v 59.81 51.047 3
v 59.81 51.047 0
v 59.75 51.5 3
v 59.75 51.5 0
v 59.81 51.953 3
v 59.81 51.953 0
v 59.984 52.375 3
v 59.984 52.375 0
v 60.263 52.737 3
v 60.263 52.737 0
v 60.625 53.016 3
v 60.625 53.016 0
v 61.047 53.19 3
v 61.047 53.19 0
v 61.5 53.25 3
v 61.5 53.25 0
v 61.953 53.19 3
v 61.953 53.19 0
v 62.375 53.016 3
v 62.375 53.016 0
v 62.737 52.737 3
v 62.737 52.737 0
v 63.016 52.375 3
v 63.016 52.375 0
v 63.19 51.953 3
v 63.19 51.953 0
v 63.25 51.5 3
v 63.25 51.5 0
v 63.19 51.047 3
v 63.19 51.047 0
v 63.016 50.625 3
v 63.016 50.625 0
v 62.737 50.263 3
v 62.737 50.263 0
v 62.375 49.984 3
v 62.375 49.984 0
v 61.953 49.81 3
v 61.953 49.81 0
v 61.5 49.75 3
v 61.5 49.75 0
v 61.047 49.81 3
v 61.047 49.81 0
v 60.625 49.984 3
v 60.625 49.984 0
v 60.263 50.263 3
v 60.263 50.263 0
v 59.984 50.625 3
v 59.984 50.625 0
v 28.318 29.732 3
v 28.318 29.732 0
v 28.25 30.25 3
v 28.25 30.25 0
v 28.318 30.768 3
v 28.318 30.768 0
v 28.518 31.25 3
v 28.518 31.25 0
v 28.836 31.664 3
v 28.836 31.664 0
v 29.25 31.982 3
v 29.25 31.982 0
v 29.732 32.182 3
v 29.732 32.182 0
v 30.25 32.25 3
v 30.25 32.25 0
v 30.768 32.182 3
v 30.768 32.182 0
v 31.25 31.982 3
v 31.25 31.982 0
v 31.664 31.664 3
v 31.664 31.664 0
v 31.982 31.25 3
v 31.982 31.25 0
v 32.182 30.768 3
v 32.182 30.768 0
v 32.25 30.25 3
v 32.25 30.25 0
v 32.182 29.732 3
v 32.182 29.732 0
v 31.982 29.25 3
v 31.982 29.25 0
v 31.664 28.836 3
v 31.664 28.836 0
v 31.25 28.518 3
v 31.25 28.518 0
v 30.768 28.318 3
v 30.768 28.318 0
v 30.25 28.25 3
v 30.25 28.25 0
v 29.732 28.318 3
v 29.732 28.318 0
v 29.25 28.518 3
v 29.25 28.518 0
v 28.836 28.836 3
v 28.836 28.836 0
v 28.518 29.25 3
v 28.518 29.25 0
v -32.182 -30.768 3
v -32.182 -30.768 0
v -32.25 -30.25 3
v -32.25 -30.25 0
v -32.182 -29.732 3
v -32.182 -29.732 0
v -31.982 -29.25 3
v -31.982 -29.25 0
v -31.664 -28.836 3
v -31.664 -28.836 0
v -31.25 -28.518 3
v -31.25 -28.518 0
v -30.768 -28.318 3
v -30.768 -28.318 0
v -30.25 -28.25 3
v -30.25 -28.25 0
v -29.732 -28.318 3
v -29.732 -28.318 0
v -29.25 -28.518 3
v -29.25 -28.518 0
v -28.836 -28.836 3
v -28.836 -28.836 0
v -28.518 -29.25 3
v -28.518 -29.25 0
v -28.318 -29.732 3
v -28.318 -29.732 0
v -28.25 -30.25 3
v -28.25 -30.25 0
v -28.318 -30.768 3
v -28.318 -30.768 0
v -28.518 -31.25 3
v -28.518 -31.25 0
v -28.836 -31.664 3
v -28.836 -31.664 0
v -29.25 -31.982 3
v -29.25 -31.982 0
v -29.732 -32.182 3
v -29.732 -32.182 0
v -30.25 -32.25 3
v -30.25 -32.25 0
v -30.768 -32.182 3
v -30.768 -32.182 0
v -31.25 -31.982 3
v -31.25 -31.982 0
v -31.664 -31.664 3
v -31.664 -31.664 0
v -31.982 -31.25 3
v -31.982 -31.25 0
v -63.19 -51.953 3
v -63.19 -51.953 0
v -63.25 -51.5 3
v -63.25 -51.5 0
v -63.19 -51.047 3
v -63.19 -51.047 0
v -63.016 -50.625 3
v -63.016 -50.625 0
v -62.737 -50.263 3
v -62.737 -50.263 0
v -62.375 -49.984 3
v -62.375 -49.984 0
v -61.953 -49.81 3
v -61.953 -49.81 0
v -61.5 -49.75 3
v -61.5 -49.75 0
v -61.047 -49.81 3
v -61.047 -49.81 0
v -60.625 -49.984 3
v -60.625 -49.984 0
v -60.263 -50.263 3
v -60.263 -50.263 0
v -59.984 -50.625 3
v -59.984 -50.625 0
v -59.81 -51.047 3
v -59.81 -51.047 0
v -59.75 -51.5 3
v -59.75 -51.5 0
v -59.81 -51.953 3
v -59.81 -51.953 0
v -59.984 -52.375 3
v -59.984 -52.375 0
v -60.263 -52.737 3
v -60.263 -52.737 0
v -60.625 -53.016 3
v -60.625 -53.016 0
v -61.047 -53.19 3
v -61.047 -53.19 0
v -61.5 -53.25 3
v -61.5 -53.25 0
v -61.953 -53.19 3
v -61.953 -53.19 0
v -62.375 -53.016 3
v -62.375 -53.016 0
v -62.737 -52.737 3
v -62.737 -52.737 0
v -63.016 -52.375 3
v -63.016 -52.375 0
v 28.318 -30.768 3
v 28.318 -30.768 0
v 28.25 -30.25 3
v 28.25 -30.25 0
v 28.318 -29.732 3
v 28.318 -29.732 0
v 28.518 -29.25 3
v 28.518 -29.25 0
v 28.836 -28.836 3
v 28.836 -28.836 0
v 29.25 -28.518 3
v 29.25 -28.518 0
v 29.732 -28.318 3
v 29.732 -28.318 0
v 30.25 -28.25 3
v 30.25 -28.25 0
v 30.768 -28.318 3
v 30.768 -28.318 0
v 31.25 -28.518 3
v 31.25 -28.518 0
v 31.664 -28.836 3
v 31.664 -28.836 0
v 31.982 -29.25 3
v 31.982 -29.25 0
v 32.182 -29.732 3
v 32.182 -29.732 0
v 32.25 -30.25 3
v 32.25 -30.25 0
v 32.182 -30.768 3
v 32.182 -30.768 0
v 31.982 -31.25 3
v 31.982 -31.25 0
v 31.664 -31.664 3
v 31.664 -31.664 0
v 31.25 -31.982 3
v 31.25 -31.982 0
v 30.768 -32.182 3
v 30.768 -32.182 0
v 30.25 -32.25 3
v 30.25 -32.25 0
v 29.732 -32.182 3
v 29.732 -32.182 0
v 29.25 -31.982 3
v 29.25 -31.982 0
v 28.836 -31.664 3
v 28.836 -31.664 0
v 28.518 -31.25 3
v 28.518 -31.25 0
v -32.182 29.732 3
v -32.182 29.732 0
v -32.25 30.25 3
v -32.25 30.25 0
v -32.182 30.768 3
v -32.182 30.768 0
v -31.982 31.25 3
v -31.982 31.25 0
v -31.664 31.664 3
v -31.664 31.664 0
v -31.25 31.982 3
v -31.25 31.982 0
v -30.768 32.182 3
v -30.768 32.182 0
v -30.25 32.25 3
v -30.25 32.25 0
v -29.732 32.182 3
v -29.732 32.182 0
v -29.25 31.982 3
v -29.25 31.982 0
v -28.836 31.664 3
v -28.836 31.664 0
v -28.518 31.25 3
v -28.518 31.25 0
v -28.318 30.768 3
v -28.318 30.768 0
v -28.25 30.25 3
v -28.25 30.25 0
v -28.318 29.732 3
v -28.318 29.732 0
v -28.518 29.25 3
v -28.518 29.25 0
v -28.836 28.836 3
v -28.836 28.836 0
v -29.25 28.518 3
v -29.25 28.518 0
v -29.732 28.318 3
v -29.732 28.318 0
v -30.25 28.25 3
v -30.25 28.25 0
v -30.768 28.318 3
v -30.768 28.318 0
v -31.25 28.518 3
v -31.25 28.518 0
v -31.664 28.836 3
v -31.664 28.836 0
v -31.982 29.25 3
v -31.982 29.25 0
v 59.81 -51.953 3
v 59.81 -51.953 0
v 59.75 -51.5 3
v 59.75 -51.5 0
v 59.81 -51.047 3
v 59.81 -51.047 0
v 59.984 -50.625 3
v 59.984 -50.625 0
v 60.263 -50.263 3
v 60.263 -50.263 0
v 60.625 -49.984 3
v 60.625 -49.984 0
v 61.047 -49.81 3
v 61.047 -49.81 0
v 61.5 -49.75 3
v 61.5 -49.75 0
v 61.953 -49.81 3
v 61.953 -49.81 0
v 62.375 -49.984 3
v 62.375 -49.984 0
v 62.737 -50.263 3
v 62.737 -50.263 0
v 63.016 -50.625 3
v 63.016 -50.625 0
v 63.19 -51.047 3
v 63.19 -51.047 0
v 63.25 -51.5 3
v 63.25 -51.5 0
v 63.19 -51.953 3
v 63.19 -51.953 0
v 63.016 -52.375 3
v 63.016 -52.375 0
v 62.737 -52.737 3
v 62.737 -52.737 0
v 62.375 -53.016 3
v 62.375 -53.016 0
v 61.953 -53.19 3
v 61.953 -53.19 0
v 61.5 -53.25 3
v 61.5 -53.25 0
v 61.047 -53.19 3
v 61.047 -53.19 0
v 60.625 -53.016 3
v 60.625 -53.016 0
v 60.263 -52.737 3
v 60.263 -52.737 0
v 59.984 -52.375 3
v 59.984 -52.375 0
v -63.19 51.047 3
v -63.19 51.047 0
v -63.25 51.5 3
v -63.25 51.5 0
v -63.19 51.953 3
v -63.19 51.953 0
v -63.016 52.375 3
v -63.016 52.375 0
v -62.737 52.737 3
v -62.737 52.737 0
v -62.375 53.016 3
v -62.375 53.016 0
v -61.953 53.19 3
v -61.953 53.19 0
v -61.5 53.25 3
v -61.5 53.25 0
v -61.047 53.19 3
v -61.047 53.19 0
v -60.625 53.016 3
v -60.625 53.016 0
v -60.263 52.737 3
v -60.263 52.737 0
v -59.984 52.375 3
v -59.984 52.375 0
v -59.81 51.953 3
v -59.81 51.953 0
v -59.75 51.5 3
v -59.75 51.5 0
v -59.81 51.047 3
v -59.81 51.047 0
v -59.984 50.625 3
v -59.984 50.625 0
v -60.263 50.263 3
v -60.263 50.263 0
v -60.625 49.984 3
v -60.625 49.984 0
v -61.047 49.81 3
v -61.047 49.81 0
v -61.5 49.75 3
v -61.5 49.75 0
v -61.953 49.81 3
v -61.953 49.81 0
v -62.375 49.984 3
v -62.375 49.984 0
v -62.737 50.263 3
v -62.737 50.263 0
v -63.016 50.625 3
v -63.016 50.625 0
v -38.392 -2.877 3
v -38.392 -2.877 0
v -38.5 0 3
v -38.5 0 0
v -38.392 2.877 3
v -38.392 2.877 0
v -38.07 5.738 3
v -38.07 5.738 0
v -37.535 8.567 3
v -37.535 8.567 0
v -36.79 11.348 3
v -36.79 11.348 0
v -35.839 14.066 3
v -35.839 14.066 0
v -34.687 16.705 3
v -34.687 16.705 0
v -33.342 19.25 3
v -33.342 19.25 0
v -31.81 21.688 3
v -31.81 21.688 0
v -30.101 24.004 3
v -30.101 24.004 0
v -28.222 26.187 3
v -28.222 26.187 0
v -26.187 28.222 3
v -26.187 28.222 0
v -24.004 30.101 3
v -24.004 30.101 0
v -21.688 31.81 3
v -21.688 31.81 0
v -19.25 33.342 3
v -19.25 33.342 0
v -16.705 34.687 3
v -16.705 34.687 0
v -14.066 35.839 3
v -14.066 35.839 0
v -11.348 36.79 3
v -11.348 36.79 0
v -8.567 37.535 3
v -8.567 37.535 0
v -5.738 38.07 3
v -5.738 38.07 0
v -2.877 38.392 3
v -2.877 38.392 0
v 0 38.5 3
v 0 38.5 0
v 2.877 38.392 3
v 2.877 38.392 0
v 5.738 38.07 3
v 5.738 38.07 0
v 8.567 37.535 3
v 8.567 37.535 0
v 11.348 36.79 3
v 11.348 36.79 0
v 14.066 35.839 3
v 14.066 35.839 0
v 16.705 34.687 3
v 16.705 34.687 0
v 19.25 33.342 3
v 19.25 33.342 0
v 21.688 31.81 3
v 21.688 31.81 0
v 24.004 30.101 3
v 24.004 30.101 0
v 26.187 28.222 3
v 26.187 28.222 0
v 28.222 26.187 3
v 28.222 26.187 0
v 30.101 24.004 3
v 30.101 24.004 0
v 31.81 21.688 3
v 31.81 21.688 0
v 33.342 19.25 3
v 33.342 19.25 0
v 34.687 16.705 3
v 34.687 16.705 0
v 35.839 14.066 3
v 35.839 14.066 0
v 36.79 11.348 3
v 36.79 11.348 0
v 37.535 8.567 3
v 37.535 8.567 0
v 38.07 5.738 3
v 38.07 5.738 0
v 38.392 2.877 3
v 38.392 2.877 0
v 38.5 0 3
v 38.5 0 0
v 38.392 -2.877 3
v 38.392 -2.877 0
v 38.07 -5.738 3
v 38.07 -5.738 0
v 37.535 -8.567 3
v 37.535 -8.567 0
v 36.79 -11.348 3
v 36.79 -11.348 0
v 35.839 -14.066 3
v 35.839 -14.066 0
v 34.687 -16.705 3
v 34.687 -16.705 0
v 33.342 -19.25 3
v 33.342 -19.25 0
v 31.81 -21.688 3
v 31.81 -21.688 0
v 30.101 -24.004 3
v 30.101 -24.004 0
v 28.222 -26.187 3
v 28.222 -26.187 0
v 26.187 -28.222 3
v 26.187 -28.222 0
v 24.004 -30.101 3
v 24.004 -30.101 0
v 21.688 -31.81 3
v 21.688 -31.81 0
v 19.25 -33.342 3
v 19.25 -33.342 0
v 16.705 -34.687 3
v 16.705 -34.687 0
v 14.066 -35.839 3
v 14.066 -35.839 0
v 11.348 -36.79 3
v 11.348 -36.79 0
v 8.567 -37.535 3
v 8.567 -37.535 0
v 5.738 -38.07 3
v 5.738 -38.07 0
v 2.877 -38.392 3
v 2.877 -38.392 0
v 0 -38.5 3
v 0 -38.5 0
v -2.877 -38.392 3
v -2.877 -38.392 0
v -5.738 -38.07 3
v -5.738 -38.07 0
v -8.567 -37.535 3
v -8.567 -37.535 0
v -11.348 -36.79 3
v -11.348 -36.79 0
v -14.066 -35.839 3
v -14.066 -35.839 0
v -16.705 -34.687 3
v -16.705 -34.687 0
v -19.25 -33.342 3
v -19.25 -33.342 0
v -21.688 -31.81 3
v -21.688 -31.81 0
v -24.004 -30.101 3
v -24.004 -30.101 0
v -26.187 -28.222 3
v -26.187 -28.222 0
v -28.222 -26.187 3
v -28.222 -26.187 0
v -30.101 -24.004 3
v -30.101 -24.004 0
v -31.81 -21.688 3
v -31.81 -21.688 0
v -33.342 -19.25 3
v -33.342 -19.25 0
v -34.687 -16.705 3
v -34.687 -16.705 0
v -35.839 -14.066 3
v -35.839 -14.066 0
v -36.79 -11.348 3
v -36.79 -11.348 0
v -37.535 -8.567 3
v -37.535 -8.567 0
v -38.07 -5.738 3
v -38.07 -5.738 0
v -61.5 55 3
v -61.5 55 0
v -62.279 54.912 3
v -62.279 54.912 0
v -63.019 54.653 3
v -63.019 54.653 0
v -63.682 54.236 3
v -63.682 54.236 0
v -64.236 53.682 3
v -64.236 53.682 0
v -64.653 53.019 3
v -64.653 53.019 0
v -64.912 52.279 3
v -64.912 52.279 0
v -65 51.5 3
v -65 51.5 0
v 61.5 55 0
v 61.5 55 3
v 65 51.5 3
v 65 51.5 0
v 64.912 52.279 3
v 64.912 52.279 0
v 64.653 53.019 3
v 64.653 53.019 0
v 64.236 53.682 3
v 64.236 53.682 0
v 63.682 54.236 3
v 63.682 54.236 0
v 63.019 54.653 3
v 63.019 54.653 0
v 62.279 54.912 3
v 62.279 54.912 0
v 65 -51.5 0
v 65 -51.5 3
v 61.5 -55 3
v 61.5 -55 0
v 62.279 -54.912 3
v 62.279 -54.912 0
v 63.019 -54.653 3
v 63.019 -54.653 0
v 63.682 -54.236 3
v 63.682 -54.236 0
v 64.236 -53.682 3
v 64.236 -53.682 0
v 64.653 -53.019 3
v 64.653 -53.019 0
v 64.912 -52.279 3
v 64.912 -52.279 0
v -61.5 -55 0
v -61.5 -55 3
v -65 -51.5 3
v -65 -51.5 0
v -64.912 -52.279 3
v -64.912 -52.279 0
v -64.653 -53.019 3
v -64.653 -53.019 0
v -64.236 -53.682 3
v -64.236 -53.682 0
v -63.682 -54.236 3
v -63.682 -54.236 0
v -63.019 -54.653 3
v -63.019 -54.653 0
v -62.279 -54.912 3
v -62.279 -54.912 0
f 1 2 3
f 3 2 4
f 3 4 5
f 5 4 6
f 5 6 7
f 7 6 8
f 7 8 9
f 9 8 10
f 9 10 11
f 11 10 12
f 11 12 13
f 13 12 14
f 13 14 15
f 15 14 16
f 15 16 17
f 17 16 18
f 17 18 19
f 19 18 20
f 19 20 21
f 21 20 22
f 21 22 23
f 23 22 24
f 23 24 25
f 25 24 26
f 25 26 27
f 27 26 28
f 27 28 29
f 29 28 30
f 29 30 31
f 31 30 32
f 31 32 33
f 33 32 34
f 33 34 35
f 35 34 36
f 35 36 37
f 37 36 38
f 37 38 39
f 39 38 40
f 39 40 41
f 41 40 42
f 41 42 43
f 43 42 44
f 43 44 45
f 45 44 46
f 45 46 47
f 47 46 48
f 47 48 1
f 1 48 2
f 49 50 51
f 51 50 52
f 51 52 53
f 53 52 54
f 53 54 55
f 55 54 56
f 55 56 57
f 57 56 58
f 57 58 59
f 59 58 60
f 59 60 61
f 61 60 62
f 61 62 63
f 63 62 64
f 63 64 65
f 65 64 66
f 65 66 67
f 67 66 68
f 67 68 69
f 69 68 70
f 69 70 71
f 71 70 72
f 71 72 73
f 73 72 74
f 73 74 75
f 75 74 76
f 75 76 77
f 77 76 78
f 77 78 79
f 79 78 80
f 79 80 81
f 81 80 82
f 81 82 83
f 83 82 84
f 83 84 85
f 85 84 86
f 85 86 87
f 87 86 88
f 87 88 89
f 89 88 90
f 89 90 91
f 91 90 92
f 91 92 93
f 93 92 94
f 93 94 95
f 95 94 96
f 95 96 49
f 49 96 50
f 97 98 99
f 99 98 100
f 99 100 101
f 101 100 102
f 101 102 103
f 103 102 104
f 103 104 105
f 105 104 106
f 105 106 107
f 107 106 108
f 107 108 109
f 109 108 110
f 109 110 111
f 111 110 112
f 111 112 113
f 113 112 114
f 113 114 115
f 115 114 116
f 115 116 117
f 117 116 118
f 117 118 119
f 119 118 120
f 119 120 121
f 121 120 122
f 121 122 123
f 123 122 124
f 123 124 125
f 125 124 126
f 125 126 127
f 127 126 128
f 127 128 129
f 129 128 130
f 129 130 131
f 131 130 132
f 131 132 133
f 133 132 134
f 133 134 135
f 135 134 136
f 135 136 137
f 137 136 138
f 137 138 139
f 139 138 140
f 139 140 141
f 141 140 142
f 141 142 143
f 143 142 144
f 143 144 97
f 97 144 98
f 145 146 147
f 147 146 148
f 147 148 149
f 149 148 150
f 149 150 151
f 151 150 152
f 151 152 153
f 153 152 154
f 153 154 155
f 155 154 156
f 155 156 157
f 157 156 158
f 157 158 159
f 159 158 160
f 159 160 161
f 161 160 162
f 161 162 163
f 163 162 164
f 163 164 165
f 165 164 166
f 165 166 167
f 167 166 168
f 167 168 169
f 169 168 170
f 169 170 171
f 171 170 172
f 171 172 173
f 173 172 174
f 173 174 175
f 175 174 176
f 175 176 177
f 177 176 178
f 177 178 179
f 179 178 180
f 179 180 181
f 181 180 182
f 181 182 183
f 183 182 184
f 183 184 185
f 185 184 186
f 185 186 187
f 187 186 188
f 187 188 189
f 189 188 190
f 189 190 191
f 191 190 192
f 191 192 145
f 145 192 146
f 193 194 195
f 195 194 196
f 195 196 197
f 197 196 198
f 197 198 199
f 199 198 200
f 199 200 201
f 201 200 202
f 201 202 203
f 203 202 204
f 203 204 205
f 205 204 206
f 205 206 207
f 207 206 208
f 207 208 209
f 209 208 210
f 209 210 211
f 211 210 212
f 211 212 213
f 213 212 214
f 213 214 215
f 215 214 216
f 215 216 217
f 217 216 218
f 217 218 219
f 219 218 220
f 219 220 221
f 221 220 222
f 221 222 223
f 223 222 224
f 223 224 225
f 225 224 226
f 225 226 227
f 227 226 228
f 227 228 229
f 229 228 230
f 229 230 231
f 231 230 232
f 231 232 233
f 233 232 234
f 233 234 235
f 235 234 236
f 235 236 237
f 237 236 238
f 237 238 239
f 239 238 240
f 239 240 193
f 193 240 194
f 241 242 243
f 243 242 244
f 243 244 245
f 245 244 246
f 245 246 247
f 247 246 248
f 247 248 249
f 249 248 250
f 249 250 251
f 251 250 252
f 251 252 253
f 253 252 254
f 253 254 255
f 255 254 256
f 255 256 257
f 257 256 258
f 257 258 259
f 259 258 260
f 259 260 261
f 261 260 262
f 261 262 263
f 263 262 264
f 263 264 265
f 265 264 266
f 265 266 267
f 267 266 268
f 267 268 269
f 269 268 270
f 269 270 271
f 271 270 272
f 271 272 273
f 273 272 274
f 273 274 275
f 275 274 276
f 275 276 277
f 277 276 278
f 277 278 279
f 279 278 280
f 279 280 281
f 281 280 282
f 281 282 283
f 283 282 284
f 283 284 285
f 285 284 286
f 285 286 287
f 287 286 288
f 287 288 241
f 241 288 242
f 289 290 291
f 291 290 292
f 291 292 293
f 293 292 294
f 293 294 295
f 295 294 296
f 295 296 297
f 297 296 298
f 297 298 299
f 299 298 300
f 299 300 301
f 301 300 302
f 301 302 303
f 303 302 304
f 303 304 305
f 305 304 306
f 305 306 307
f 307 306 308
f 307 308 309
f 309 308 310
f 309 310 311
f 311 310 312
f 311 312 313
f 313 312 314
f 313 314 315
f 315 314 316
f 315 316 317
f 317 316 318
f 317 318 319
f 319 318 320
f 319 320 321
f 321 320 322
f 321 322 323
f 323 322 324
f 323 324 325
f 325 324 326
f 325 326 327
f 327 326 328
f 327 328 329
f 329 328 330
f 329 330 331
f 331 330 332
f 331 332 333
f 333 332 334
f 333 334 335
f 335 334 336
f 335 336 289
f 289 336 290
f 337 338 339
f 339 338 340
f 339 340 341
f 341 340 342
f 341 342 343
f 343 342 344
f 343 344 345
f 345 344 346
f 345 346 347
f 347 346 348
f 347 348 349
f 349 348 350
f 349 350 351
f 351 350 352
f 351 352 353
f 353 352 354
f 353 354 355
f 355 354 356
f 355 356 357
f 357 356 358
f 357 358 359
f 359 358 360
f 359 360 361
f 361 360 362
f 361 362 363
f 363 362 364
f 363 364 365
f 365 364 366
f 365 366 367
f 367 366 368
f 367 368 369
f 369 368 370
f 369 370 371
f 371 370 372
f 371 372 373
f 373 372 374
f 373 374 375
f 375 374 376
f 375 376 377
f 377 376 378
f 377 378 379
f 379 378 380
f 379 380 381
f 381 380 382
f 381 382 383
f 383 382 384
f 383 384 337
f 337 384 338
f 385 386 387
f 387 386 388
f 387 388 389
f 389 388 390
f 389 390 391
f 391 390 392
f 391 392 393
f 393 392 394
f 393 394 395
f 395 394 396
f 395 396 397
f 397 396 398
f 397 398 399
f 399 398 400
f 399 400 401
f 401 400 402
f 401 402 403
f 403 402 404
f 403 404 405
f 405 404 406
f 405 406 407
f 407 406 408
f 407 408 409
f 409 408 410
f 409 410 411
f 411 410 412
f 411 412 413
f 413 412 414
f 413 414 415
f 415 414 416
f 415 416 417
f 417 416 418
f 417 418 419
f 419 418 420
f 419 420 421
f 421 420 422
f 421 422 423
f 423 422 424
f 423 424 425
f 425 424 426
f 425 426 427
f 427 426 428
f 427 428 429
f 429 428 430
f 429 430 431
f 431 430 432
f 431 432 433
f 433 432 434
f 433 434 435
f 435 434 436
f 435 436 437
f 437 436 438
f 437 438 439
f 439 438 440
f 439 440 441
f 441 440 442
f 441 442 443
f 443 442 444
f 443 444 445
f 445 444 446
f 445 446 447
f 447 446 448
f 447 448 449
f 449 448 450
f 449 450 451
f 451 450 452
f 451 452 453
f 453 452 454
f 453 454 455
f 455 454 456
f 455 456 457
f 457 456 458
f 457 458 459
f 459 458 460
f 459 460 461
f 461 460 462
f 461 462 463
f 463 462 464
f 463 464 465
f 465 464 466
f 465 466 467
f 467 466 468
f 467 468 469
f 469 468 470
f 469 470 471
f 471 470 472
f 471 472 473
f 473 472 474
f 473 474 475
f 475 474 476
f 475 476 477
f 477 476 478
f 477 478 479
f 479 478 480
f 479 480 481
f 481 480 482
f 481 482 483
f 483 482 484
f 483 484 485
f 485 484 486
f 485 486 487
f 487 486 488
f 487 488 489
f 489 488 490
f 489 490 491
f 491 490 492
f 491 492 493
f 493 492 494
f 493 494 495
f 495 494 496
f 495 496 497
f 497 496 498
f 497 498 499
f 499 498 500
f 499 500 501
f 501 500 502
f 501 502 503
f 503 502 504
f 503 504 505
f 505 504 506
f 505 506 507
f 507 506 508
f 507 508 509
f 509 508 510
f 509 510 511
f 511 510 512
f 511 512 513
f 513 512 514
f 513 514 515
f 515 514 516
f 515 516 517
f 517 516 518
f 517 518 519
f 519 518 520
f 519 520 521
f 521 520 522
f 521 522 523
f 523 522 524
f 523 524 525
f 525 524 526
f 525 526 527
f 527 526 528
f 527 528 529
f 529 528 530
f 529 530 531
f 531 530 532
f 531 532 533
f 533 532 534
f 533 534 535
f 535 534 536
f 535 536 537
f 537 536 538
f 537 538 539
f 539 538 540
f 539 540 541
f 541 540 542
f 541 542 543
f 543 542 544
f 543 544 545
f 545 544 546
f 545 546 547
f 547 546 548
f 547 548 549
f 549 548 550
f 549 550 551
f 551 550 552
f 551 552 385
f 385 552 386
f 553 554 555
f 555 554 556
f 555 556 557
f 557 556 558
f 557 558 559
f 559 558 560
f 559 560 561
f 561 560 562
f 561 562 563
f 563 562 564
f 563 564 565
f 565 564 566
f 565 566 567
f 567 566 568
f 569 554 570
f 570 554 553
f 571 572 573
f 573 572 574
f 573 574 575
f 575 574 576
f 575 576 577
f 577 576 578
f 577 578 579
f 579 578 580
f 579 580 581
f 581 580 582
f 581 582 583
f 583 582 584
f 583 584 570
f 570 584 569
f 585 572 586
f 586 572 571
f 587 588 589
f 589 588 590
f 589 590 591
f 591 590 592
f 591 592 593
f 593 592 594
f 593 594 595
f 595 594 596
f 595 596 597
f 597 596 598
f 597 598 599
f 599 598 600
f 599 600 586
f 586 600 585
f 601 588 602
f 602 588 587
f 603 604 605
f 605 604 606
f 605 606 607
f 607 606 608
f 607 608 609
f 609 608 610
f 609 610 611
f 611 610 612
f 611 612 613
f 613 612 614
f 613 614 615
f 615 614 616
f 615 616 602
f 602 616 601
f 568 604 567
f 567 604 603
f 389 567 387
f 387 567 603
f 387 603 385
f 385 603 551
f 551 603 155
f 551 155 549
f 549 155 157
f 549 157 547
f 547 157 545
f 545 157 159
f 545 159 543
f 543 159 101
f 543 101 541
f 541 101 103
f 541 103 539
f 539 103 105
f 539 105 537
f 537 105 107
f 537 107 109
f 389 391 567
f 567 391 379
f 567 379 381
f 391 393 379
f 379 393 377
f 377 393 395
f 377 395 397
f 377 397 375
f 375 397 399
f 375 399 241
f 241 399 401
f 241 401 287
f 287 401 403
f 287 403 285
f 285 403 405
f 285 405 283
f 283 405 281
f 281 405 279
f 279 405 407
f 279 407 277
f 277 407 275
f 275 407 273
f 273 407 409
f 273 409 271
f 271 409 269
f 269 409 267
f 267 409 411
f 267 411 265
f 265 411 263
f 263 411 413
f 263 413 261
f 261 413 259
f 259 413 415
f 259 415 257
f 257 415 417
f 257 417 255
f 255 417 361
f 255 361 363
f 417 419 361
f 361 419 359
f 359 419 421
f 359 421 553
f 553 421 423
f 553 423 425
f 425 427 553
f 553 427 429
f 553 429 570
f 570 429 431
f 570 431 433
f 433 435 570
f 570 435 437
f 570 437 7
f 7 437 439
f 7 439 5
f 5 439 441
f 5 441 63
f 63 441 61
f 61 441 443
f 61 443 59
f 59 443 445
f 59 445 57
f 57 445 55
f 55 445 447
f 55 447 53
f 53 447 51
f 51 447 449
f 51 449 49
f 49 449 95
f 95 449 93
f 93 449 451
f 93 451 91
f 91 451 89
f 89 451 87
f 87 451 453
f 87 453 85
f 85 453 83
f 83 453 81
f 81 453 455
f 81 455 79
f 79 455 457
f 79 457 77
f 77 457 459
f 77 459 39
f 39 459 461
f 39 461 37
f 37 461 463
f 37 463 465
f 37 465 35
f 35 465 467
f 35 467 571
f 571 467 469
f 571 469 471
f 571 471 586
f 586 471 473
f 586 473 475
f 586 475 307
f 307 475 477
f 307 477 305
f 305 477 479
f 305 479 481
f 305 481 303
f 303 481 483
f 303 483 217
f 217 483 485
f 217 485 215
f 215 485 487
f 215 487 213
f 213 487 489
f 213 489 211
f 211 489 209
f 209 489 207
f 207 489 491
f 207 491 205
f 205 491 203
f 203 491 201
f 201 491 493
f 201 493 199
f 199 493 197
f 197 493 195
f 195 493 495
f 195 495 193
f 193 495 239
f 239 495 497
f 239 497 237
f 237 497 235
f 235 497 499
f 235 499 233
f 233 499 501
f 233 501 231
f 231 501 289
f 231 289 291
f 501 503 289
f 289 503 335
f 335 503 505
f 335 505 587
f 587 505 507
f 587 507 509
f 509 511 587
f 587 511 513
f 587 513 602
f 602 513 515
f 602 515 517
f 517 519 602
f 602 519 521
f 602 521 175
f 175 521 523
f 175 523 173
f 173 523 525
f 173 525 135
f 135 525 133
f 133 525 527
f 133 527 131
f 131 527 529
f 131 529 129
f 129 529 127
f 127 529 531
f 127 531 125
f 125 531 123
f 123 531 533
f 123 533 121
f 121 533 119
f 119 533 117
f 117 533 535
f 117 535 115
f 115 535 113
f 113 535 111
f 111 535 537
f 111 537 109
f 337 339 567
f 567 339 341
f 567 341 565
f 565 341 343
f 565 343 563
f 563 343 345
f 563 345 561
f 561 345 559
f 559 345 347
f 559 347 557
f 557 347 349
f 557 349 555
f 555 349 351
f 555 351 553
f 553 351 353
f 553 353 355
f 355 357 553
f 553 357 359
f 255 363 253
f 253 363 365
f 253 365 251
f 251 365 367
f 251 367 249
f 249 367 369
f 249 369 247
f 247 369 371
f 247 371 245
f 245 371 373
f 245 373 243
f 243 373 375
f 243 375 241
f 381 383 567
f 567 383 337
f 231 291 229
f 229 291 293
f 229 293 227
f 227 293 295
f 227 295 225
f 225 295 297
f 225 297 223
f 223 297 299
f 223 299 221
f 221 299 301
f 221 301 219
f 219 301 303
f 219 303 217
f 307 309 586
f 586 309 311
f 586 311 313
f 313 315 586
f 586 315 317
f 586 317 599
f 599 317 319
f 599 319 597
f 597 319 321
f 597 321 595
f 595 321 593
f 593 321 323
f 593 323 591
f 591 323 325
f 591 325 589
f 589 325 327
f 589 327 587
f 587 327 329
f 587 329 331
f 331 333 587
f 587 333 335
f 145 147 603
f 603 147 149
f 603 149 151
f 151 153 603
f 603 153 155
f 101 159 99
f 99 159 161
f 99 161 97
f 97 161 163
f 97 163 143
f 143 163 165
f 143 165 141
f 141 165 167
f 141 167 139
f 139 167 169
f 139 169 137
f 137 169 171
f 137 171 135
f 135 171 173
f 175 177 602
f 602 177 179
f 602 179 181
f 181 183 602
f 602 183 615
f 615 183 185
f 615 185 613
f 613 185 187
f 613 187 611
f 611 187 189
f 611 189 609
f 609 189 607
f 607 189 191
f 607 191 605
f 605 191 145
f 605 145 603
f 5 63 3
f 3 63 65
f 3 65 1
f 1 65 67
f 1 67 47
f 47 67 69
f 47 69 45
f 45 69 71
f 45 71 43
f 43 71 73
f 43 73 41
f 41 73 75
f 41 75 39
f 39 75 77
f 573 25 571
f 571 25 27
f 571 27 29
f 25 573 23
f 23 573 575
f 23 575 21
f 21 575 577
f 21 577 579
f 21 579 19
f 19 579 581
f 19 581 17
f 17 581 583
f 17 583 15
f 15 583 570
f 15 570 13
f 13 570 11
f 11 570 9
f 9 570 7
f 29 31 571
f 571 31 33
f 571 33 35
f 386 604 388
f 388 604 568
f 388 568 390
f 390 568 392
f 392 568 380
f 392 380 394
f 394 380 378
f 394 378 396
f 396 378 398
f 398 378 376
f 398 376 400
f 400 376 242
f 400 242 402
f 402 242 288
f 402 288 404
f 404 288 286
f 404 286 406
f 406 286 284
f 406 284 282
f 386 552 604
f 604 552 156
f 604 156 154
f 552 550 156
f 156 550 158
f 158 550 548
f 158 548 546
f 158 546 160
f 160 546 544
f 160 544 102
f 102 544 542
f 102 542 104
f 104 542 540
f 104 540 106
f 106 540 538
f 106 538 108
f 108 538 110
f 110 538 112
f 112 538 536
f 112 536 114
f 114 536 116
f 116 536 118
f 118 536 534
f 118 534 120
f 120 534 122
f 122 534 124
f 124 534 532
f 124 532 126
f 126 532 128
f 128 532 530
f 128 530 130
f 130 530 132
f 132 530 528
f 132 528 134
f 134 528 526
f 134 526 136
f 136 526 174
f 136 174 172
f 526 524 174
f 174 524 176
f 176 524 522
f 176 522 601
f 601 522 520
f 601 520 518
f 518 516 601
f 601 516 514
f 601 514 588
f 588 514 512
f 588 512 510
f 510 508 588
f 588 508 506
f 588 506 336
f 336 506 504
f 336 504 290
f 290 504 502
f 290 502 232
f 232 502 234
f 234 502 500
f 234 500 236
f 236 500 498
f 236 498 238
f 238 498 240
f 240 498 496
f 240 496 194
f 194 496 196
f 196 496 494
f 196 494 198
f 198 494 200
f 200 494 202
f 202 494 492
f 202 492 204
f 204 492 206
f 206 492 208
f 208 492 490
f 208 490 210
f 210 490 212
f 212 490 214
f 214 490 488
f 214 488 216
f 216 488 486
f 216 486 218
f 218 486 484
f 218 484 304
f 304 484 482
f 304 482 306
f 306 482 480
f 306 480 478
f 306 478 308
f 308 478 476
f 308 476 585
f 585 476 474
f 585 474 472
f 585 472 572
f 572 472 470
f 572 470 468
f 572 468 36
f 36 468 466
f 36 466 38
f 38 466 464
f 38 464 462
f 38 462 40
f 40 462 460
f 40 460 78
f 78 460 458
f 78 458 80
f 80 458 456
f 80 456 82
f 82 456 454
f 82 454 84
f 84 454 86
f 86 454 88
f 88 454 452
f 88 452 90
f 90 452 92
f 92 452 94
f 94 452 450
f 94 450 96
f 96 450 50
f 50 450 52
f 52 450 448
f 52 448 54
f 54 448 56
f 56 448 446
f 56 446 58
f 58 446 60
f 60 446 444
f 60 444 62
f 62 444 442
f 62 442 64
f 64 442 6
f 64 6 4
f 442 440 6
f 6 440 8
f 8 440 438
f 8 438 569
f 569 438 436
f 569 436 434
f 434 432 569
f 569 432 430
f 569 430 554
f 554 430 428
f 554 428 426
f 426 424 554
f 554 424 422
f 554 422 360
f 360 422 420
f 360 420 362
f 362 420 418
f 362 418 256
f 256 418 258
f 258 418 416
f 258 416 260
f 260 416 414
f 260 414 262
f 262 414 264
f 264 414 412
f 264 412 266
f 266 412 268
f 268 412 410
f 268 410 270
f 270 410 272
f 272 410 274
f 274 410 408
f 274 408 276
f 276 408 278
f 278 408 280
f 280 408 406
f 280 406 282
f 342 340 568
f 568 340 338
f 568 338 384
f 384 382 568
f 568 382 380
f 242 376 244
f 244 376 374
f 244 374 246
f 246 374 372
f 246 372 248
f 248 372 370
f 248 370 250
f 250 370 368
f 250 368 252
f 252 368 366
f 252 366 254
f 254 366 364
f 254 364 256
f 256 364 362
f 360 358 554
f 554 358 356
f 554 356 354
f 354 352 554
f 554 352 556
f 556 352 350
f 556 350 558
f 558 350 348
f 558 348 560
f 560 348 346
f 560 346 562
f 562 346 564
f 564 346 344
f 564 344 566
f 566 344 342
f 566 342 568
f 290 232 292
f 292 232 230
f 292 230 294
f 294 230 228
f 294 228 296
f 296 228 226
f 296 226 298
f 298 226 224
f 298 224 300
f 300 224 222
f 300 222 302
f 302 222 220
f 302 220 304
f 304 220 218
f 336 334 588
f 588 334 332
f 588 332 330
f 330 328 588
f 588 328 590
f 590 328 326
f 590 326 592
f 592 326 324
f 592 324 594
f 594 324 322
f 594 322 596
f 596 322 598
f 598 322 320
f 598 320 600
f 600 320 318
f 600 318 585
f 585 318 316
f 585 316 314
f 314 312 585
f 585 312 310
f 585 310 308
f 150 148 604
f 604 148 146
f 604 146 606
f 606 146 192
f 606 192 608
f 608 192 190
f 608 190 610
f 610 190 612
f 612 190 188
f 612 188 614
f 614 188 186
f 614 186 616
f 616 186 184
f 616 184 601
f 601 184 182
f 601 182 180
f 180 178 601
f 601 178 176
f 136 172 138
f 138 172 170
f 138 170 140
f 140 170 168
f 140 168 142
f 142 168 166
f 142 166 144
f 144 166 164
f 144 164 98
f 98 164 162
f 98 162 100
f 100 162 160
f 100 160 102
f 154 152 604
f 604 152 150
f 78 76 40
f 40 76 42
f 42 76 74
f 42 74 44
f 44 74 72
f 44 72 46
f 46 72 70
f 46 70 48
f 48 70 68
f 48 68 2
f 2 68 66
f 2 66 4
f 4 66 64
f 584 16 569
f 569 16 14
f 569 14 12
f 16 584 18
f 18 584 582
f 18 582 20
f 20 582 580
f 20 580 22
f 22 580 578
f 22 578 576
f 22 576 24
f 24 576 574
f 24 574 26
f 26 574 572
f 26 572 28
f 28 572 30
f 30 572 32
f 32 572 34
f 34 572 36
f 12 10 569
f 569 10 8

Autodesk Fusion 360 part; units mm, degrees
sketch "Sketch1" plane through (0, 0, 0) normal (0, 0, 1) x (1, 0, 0)
  line L0 (65, 55) -> (-65, 55)
  line L1 (-65, 55) -> (-65, -55)
  line L2 (-65, -55) -> (65, -55)
  line L3 (65, -55) -> (65, 55)
  line L4 (65, 55) -> (-65, -55) construction
  line L5 (-65, 55) -> (65, -55) construction
  line L6 (61.5, 51.5) -> (-61.5, 51.5)
  line L7 (-61.5, 51.5) -> (-61.5, -51.5)
  line L8 (-61.5, -51.5) -> (61.5, -51.5)
  line L9 (61.5, -51.5) -> (61.5, 51.5)
  line L10 (61.5, 51.5) -> (-61.5, -51.5) construction
  line L11 (-61.5, 51.5) -> (61.5, -51.5) construction
  circle A0 centre (-61.5, 51.5) radius 3.5
  circle A1 centre (61.5, 51.5) radius 3.5
  circle A2 centre (61.5, -51.5) radius 3.5
  circle A3 centre (-61.5, -51.5) radius 3.5
  circle A4 centre (-61.5, -51.5) radius 1.75
  circle A5 centre (61.5, -51.5) radius 1.75
  circle A6 centre (61.5, 51.5) radius 1.75
  circle A7 centre (-61.5, 51.5) radius 1.75
  circle A8 centre (0, 0) radius 38.5
  line L12 (30.25, 30.25) -> (-30.25, 30.25)
  line L13 (-30.25, 30.25) -> (-30.25, -30.25)
  line L14 (-30.25, -30.25) -> (30.25, -30.25)
  line L15 (30.25, -30.25) -> (30.25, 30.25)
  line L16 (30.25, 30.25) -> (-30.25, -30.25) construction
  line L17 (-30.25, 30.25) -> (30.25, -30.25) construction
  circle A9 centre (30.25, 30.25) radius 2
  circle A10 centre (-30.25, 30.25) radius 2
  circle A11 centre (-30.25, -30.25) radius 2
  circle A12 centre (30.25, -30.25) radius 2
  dimension "d1" = 130
  dimension "d2" = 110
  dimension "d3" = 3.5
  dimension "d4" = 3.5
  dimension "d5" = 3.5
  dimension "d6" = 3.5
  dimension "d7" = 3.5
  dimension "d8" = 3.5
  dimension "d9" = 77
  dimension "d10" = 60.5
  dimension "d11" = 60.5
  dimension "d12" = 4
  dimension "d13" = 4
  dimension "d14" = 4
  dimension "d15" = 4
extrude "Extrude1" add sketch "Sketch1" along normal blind 3 contours L0 L6 A0 A1 | L6 L9 A1 A6 | L3 L9 A1 A2 | L6 L7 A0 A7 | L6 L7 L8 L9 A0 A1 A2 A3 | L6 L9 A1 A6 | L8 L9 A2 A5 | L6 L7 A0 A7 | L1 L7 A0 A3 | L8 L9 A2 A5 | L2 L8 A2 A3 | L7 L8 A3 A4 | L7 L8 A3 A4 | A8 L12 L15 A9 | A8 L14 L15 A12 | A8 L12 L13 A10 | A8 L13 L14 A11
